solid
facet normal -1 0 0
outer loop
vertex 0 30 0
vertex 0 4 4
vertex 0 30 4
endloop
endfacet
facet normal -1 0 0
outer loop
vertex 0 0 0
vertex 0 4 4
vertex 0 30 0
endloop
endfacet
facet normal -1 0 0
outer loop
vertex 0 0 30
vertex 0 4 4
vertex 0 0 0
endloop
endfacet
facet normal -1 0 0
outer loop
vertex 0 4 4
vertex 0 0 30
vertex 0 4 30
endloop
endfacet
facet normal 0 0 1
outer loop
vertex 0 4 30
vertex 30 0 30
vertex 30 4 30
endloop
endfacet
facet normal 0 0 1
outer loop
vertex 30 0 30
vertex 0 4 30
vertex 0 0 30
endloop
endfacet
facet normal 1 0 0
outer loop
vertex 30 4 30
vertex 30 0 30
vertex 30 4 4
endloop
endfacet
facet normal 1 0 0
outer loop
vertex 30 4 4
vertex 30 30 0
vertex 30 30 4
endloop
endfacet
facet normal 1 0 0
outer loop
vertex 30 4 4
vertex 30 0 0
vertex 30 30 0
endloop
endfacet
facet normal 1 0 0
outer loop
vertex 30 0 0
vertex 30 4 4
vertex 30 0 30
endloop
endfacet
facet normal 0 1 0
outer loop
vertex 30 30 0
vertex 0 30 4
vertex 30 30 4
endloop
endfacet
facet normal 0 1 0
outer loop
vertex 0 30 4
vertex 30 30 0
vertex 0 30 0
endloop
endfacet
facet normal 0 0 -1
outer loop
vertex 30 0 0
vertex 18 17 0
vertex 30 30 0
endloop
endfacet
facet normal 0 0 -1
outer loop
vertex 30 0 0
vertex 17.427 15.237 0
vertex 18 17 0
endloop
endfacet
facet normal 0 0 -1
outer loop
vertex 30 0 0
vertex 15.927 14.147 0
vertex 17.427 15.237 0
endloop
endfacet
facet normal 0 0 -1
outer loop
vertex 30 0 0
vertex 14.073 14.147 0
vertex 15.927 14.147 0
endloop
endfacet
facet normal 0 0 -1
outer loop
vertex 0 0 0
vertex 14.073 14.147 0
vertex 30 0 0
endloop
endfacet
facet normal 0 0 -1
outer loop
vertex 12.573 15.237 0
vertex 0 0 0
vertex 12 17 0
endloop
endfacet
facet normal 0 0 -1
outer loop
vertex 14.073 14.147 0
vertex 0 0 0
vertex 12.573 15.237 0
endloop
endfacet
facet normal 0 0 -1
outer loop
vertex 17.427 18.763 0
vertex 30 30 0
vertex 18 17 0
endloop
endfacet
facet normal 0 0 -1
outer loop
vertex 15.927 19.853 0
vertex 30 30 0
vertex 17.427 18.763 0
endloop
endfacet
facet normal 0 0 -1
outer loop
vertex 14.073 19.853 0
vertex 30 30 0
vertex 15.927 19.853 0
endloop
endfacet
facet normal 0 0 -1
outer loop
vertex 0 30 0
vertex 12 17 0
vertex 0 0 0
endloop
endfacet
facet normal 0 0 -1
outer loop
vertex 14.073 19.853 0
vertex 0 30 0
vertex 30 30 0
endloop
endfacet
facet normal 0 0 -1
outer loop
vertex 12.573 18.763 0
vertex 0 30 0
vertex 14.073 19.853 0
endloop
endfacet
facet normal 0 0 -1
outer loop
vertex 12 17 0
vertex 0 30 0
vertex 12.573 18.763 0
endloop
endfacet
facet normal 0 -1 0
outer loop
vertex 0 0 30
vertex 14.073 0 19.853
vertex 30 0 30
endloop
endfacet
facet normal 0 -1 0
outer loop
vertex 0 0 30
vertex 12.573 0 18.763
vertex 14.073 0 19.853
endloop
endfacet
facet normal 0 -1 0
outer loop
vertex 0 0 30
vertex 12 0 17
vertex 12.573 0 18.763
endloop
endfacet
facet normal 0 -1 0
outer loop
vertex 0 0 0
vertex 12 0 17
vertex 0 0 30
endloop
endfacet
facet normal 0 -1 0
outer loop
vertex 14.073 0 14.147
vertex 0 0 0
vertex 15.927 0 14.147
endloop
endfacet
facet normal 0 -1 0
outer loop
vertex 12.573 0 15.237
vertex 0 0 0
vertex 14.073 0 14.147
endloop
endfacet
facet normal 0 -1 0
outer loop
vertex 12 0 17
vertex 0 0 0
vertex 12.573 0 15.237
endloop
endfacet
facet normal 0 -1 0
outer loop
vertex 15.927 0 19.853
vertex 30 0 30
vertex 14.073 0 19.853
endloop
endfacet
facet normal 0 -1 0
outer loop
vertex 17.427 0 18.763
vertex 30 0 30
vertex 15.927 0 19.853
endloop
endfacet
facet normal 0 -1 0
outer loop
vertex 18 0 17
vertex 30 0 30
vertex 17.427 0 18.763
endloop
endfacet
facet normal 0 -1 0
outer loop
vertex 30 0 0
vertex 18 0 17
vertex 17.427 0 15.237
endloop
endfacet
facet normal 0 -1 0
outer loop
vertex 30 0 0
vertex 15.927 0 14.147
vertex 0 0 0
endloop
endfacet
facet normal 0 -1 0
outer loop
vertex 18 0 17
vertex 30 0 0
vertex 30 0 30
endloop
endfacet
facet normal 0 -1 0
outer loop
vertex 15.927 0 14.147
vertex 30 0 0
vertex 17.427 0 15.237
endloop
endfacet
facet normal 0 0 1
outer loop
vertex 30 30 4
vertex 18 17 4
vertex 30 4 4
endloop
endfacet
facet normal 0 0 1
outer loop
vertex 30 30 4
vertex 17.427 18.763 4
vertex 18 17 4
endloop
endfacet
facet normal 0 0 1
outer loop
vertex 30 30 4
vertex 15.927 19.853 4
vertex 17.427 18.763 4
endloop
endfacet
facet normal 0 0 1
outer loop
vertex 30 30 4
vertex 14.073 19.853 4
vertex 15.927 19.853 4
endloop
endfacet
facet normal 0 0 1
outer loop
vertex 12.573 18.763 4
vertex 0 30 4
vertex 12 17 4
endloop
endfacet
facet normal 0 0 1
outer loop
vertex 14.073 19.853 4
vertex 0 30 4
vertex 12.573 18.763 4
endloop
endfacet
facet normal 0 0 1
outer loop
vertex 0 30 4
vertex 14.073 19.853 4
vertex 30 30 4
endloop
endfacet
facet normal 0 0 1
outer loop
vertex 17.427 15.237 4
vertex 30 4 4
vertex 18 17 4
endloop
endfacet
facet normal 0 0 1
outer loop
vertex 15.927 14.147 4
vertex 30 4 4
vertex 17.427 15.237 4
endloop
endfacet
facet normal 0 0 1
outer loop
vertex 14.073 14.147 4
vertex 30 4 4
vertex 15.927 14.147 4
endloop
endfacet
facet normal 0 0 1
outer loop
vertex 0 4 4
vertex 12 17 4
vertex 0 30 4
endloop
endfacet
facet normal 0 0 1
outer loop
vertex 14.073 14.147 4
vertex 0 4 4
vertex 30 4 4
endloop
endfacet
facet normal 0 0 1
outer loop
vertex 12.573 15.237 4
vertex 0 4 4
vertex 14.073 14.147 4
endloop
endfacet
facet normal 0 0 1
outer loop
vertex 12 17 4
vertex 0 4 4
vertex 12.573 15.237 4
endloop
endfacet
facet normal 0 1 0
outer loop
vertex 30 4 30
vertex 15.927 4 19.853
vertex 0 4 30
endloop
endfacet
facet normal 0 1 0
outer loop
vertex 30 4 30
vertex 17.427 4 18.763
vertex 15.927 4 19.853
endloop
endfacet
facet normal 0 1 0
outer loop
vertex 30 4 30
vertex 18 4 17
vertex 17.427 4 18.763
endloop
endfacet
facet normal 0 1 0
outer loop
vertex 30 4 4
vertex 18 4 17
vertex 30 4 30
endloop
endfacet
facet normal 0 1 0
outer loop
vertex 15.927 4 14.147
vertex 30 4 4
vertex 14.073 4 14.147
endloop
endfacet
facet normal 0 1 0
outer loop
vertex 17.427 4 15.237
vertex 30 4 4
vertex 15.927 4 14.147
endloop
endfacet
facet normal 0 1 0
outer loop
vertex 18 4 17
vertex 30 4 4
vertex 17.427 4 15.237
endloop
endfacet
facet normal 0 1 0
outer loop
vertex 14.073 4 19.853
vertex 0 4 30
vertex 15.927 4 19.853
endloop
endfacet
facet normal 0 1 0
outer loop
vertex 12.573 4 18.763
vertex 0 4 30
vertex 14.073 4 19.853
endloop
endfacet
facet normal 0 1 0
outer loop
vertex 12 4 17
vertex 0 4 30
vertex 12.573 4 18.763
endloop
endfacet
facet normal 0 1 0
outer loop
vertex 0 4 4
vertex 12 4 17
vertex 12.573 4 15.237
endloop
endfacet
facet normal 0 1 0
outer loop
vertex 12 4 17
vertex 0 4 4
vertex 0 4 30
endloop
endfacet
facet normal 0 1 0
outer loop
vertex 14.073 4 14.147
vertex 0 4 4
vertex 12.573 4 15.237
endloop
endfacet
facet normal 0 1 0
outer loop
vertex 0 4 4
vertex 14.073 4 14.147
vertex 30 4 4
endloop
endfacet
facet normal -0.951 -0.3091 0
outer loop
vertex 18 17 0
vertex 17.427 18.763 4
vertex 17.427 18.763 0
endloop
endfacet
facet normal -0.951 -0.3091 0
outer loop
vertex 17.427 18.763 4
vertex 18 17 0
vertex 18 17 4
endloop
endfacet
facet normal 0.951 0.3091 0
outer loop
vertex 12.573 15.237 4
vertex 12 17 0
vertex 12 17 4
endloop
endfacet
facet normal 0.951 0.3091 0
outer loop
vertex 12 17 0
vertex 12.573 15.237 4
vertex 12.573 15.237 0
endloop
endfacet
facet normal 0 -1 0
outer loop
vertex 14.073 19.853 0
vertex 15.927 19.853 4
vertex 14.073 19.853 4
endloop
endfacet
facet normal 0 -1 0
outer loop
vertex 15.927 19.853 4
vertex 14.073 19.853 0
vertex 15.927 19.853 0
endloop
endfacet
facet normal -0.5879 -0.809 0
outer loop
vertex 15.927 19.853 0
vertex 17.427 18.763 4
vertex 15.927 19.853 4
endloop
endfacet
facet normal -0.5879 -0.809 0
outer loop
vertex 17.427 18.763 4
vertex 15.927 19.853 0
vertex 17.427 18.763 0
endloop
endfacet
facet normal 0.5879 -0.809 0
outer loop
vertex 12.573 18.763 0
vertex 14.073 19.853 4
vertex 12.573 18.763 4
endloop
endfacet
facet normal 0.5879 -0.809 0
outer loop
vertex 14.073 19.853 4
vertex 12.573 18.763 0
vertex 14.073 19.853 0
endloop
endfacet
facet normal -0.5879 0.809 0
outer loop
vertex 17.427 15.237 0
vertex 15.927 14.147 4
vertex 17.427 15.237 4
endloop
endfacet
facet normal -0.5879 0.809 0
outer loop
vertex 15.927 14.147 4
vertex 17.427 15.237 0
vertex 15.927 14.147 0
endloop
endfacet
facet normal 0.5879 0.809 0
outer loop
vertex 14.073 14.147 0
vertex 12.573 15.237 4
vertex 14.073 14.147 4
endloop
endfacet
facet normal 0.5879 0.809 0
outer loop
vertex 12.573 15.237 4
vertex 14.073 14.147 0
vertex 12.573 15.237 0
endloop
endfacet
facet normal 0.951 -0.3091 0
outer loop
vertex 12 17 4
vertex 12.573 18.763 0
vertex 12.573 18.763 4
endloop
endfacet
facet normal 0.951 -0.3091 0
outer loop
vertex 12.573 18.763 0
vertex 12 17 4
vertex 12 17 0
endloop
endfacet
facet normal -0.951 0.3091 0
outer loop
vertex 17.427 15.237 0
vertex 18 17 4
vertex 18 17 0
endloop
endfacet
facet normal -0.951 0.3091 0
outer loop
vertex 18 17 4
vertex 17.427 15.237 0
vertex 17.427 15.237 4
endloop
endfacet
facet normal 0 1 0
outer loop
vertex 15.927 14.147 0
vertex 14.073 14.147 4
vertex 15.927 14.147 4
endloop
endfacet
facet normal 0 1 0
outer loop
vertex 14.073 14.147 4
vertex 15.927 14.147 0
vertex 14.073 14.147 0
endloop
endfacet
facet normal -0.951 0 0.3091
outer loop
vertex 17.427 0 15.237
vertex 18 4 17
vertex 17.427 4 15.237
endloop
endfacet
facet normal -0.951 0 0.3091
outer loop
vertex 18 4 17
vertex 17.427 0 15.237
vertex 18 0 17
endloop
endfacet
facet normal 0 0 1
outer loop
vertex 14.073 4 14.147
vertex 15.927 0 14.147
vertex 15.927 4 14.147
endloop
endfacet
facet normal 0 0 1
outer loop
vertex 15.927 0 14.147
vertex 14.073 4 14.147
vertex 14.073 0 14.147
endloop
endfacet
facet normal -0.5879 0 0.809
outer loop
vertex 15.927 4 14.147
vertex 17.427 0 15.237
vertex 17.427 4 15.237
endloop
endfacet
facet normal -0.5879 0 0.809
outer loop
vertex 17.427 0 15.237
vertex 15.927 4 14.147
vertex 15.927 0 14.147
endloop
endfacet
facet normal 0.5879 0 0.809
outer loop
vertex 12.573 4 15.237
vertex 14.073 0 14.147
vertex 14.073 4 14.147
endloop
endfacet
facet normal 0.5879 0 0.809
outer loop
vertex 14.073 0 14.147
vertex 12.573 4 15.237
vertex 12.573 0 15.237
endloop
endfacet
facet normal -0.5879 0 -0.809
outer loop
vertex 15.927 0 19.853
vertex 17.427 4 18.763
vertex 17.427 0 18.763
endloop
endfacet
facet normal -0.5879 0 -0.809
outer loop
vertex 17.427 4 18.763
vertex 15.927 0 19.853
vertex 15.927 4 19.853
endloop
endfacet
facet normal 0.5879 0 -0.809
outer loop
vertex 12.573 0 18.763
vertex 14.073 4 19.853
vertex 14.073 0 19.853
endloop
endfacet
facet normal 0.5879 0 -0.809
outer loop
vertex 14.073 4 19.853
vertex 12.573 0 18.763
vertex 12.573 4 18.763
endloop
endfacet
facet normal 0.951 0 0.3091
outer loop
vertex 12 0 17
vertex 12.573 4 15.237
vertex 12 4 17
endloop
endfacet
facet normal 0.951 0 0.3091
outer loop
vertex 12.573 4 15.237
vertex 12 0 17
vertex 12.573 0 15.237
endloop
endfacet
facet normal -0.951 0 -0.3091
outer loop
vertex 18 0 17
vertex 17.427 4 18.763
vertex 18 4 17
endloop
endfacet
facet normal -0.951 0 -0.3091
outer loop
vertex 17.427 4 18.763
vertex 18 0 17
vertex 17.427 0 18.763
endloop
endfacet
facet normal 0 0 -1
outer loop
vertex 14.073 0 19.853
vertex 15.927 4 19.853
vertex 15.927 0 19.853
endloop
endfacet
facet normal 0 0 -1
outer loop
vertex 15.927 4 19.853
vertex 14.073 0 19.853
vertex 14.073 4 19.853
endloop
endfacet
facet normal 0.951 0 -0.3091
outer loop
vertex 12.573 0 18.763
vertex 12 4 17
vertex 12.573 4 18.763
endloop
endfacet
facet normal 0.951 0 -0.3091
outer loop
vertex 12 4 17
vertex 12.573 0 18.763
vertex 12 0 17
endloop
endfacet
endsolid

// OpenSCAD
size = 30;
thick = 4;
hole = 3;
difference() {
    difference() {
        cube([size,size,size]);
        translate([0,thick,thick]) cube([size,size,size]);
    }
    translate([size/2,size-((size-thick)/2),0]) cylinder(thick,hole,hole);
    translate([size/2,0,size-((size-thick)/2)]) rotate([-90,0,0]) cylinder(size,hole,hole);
}
